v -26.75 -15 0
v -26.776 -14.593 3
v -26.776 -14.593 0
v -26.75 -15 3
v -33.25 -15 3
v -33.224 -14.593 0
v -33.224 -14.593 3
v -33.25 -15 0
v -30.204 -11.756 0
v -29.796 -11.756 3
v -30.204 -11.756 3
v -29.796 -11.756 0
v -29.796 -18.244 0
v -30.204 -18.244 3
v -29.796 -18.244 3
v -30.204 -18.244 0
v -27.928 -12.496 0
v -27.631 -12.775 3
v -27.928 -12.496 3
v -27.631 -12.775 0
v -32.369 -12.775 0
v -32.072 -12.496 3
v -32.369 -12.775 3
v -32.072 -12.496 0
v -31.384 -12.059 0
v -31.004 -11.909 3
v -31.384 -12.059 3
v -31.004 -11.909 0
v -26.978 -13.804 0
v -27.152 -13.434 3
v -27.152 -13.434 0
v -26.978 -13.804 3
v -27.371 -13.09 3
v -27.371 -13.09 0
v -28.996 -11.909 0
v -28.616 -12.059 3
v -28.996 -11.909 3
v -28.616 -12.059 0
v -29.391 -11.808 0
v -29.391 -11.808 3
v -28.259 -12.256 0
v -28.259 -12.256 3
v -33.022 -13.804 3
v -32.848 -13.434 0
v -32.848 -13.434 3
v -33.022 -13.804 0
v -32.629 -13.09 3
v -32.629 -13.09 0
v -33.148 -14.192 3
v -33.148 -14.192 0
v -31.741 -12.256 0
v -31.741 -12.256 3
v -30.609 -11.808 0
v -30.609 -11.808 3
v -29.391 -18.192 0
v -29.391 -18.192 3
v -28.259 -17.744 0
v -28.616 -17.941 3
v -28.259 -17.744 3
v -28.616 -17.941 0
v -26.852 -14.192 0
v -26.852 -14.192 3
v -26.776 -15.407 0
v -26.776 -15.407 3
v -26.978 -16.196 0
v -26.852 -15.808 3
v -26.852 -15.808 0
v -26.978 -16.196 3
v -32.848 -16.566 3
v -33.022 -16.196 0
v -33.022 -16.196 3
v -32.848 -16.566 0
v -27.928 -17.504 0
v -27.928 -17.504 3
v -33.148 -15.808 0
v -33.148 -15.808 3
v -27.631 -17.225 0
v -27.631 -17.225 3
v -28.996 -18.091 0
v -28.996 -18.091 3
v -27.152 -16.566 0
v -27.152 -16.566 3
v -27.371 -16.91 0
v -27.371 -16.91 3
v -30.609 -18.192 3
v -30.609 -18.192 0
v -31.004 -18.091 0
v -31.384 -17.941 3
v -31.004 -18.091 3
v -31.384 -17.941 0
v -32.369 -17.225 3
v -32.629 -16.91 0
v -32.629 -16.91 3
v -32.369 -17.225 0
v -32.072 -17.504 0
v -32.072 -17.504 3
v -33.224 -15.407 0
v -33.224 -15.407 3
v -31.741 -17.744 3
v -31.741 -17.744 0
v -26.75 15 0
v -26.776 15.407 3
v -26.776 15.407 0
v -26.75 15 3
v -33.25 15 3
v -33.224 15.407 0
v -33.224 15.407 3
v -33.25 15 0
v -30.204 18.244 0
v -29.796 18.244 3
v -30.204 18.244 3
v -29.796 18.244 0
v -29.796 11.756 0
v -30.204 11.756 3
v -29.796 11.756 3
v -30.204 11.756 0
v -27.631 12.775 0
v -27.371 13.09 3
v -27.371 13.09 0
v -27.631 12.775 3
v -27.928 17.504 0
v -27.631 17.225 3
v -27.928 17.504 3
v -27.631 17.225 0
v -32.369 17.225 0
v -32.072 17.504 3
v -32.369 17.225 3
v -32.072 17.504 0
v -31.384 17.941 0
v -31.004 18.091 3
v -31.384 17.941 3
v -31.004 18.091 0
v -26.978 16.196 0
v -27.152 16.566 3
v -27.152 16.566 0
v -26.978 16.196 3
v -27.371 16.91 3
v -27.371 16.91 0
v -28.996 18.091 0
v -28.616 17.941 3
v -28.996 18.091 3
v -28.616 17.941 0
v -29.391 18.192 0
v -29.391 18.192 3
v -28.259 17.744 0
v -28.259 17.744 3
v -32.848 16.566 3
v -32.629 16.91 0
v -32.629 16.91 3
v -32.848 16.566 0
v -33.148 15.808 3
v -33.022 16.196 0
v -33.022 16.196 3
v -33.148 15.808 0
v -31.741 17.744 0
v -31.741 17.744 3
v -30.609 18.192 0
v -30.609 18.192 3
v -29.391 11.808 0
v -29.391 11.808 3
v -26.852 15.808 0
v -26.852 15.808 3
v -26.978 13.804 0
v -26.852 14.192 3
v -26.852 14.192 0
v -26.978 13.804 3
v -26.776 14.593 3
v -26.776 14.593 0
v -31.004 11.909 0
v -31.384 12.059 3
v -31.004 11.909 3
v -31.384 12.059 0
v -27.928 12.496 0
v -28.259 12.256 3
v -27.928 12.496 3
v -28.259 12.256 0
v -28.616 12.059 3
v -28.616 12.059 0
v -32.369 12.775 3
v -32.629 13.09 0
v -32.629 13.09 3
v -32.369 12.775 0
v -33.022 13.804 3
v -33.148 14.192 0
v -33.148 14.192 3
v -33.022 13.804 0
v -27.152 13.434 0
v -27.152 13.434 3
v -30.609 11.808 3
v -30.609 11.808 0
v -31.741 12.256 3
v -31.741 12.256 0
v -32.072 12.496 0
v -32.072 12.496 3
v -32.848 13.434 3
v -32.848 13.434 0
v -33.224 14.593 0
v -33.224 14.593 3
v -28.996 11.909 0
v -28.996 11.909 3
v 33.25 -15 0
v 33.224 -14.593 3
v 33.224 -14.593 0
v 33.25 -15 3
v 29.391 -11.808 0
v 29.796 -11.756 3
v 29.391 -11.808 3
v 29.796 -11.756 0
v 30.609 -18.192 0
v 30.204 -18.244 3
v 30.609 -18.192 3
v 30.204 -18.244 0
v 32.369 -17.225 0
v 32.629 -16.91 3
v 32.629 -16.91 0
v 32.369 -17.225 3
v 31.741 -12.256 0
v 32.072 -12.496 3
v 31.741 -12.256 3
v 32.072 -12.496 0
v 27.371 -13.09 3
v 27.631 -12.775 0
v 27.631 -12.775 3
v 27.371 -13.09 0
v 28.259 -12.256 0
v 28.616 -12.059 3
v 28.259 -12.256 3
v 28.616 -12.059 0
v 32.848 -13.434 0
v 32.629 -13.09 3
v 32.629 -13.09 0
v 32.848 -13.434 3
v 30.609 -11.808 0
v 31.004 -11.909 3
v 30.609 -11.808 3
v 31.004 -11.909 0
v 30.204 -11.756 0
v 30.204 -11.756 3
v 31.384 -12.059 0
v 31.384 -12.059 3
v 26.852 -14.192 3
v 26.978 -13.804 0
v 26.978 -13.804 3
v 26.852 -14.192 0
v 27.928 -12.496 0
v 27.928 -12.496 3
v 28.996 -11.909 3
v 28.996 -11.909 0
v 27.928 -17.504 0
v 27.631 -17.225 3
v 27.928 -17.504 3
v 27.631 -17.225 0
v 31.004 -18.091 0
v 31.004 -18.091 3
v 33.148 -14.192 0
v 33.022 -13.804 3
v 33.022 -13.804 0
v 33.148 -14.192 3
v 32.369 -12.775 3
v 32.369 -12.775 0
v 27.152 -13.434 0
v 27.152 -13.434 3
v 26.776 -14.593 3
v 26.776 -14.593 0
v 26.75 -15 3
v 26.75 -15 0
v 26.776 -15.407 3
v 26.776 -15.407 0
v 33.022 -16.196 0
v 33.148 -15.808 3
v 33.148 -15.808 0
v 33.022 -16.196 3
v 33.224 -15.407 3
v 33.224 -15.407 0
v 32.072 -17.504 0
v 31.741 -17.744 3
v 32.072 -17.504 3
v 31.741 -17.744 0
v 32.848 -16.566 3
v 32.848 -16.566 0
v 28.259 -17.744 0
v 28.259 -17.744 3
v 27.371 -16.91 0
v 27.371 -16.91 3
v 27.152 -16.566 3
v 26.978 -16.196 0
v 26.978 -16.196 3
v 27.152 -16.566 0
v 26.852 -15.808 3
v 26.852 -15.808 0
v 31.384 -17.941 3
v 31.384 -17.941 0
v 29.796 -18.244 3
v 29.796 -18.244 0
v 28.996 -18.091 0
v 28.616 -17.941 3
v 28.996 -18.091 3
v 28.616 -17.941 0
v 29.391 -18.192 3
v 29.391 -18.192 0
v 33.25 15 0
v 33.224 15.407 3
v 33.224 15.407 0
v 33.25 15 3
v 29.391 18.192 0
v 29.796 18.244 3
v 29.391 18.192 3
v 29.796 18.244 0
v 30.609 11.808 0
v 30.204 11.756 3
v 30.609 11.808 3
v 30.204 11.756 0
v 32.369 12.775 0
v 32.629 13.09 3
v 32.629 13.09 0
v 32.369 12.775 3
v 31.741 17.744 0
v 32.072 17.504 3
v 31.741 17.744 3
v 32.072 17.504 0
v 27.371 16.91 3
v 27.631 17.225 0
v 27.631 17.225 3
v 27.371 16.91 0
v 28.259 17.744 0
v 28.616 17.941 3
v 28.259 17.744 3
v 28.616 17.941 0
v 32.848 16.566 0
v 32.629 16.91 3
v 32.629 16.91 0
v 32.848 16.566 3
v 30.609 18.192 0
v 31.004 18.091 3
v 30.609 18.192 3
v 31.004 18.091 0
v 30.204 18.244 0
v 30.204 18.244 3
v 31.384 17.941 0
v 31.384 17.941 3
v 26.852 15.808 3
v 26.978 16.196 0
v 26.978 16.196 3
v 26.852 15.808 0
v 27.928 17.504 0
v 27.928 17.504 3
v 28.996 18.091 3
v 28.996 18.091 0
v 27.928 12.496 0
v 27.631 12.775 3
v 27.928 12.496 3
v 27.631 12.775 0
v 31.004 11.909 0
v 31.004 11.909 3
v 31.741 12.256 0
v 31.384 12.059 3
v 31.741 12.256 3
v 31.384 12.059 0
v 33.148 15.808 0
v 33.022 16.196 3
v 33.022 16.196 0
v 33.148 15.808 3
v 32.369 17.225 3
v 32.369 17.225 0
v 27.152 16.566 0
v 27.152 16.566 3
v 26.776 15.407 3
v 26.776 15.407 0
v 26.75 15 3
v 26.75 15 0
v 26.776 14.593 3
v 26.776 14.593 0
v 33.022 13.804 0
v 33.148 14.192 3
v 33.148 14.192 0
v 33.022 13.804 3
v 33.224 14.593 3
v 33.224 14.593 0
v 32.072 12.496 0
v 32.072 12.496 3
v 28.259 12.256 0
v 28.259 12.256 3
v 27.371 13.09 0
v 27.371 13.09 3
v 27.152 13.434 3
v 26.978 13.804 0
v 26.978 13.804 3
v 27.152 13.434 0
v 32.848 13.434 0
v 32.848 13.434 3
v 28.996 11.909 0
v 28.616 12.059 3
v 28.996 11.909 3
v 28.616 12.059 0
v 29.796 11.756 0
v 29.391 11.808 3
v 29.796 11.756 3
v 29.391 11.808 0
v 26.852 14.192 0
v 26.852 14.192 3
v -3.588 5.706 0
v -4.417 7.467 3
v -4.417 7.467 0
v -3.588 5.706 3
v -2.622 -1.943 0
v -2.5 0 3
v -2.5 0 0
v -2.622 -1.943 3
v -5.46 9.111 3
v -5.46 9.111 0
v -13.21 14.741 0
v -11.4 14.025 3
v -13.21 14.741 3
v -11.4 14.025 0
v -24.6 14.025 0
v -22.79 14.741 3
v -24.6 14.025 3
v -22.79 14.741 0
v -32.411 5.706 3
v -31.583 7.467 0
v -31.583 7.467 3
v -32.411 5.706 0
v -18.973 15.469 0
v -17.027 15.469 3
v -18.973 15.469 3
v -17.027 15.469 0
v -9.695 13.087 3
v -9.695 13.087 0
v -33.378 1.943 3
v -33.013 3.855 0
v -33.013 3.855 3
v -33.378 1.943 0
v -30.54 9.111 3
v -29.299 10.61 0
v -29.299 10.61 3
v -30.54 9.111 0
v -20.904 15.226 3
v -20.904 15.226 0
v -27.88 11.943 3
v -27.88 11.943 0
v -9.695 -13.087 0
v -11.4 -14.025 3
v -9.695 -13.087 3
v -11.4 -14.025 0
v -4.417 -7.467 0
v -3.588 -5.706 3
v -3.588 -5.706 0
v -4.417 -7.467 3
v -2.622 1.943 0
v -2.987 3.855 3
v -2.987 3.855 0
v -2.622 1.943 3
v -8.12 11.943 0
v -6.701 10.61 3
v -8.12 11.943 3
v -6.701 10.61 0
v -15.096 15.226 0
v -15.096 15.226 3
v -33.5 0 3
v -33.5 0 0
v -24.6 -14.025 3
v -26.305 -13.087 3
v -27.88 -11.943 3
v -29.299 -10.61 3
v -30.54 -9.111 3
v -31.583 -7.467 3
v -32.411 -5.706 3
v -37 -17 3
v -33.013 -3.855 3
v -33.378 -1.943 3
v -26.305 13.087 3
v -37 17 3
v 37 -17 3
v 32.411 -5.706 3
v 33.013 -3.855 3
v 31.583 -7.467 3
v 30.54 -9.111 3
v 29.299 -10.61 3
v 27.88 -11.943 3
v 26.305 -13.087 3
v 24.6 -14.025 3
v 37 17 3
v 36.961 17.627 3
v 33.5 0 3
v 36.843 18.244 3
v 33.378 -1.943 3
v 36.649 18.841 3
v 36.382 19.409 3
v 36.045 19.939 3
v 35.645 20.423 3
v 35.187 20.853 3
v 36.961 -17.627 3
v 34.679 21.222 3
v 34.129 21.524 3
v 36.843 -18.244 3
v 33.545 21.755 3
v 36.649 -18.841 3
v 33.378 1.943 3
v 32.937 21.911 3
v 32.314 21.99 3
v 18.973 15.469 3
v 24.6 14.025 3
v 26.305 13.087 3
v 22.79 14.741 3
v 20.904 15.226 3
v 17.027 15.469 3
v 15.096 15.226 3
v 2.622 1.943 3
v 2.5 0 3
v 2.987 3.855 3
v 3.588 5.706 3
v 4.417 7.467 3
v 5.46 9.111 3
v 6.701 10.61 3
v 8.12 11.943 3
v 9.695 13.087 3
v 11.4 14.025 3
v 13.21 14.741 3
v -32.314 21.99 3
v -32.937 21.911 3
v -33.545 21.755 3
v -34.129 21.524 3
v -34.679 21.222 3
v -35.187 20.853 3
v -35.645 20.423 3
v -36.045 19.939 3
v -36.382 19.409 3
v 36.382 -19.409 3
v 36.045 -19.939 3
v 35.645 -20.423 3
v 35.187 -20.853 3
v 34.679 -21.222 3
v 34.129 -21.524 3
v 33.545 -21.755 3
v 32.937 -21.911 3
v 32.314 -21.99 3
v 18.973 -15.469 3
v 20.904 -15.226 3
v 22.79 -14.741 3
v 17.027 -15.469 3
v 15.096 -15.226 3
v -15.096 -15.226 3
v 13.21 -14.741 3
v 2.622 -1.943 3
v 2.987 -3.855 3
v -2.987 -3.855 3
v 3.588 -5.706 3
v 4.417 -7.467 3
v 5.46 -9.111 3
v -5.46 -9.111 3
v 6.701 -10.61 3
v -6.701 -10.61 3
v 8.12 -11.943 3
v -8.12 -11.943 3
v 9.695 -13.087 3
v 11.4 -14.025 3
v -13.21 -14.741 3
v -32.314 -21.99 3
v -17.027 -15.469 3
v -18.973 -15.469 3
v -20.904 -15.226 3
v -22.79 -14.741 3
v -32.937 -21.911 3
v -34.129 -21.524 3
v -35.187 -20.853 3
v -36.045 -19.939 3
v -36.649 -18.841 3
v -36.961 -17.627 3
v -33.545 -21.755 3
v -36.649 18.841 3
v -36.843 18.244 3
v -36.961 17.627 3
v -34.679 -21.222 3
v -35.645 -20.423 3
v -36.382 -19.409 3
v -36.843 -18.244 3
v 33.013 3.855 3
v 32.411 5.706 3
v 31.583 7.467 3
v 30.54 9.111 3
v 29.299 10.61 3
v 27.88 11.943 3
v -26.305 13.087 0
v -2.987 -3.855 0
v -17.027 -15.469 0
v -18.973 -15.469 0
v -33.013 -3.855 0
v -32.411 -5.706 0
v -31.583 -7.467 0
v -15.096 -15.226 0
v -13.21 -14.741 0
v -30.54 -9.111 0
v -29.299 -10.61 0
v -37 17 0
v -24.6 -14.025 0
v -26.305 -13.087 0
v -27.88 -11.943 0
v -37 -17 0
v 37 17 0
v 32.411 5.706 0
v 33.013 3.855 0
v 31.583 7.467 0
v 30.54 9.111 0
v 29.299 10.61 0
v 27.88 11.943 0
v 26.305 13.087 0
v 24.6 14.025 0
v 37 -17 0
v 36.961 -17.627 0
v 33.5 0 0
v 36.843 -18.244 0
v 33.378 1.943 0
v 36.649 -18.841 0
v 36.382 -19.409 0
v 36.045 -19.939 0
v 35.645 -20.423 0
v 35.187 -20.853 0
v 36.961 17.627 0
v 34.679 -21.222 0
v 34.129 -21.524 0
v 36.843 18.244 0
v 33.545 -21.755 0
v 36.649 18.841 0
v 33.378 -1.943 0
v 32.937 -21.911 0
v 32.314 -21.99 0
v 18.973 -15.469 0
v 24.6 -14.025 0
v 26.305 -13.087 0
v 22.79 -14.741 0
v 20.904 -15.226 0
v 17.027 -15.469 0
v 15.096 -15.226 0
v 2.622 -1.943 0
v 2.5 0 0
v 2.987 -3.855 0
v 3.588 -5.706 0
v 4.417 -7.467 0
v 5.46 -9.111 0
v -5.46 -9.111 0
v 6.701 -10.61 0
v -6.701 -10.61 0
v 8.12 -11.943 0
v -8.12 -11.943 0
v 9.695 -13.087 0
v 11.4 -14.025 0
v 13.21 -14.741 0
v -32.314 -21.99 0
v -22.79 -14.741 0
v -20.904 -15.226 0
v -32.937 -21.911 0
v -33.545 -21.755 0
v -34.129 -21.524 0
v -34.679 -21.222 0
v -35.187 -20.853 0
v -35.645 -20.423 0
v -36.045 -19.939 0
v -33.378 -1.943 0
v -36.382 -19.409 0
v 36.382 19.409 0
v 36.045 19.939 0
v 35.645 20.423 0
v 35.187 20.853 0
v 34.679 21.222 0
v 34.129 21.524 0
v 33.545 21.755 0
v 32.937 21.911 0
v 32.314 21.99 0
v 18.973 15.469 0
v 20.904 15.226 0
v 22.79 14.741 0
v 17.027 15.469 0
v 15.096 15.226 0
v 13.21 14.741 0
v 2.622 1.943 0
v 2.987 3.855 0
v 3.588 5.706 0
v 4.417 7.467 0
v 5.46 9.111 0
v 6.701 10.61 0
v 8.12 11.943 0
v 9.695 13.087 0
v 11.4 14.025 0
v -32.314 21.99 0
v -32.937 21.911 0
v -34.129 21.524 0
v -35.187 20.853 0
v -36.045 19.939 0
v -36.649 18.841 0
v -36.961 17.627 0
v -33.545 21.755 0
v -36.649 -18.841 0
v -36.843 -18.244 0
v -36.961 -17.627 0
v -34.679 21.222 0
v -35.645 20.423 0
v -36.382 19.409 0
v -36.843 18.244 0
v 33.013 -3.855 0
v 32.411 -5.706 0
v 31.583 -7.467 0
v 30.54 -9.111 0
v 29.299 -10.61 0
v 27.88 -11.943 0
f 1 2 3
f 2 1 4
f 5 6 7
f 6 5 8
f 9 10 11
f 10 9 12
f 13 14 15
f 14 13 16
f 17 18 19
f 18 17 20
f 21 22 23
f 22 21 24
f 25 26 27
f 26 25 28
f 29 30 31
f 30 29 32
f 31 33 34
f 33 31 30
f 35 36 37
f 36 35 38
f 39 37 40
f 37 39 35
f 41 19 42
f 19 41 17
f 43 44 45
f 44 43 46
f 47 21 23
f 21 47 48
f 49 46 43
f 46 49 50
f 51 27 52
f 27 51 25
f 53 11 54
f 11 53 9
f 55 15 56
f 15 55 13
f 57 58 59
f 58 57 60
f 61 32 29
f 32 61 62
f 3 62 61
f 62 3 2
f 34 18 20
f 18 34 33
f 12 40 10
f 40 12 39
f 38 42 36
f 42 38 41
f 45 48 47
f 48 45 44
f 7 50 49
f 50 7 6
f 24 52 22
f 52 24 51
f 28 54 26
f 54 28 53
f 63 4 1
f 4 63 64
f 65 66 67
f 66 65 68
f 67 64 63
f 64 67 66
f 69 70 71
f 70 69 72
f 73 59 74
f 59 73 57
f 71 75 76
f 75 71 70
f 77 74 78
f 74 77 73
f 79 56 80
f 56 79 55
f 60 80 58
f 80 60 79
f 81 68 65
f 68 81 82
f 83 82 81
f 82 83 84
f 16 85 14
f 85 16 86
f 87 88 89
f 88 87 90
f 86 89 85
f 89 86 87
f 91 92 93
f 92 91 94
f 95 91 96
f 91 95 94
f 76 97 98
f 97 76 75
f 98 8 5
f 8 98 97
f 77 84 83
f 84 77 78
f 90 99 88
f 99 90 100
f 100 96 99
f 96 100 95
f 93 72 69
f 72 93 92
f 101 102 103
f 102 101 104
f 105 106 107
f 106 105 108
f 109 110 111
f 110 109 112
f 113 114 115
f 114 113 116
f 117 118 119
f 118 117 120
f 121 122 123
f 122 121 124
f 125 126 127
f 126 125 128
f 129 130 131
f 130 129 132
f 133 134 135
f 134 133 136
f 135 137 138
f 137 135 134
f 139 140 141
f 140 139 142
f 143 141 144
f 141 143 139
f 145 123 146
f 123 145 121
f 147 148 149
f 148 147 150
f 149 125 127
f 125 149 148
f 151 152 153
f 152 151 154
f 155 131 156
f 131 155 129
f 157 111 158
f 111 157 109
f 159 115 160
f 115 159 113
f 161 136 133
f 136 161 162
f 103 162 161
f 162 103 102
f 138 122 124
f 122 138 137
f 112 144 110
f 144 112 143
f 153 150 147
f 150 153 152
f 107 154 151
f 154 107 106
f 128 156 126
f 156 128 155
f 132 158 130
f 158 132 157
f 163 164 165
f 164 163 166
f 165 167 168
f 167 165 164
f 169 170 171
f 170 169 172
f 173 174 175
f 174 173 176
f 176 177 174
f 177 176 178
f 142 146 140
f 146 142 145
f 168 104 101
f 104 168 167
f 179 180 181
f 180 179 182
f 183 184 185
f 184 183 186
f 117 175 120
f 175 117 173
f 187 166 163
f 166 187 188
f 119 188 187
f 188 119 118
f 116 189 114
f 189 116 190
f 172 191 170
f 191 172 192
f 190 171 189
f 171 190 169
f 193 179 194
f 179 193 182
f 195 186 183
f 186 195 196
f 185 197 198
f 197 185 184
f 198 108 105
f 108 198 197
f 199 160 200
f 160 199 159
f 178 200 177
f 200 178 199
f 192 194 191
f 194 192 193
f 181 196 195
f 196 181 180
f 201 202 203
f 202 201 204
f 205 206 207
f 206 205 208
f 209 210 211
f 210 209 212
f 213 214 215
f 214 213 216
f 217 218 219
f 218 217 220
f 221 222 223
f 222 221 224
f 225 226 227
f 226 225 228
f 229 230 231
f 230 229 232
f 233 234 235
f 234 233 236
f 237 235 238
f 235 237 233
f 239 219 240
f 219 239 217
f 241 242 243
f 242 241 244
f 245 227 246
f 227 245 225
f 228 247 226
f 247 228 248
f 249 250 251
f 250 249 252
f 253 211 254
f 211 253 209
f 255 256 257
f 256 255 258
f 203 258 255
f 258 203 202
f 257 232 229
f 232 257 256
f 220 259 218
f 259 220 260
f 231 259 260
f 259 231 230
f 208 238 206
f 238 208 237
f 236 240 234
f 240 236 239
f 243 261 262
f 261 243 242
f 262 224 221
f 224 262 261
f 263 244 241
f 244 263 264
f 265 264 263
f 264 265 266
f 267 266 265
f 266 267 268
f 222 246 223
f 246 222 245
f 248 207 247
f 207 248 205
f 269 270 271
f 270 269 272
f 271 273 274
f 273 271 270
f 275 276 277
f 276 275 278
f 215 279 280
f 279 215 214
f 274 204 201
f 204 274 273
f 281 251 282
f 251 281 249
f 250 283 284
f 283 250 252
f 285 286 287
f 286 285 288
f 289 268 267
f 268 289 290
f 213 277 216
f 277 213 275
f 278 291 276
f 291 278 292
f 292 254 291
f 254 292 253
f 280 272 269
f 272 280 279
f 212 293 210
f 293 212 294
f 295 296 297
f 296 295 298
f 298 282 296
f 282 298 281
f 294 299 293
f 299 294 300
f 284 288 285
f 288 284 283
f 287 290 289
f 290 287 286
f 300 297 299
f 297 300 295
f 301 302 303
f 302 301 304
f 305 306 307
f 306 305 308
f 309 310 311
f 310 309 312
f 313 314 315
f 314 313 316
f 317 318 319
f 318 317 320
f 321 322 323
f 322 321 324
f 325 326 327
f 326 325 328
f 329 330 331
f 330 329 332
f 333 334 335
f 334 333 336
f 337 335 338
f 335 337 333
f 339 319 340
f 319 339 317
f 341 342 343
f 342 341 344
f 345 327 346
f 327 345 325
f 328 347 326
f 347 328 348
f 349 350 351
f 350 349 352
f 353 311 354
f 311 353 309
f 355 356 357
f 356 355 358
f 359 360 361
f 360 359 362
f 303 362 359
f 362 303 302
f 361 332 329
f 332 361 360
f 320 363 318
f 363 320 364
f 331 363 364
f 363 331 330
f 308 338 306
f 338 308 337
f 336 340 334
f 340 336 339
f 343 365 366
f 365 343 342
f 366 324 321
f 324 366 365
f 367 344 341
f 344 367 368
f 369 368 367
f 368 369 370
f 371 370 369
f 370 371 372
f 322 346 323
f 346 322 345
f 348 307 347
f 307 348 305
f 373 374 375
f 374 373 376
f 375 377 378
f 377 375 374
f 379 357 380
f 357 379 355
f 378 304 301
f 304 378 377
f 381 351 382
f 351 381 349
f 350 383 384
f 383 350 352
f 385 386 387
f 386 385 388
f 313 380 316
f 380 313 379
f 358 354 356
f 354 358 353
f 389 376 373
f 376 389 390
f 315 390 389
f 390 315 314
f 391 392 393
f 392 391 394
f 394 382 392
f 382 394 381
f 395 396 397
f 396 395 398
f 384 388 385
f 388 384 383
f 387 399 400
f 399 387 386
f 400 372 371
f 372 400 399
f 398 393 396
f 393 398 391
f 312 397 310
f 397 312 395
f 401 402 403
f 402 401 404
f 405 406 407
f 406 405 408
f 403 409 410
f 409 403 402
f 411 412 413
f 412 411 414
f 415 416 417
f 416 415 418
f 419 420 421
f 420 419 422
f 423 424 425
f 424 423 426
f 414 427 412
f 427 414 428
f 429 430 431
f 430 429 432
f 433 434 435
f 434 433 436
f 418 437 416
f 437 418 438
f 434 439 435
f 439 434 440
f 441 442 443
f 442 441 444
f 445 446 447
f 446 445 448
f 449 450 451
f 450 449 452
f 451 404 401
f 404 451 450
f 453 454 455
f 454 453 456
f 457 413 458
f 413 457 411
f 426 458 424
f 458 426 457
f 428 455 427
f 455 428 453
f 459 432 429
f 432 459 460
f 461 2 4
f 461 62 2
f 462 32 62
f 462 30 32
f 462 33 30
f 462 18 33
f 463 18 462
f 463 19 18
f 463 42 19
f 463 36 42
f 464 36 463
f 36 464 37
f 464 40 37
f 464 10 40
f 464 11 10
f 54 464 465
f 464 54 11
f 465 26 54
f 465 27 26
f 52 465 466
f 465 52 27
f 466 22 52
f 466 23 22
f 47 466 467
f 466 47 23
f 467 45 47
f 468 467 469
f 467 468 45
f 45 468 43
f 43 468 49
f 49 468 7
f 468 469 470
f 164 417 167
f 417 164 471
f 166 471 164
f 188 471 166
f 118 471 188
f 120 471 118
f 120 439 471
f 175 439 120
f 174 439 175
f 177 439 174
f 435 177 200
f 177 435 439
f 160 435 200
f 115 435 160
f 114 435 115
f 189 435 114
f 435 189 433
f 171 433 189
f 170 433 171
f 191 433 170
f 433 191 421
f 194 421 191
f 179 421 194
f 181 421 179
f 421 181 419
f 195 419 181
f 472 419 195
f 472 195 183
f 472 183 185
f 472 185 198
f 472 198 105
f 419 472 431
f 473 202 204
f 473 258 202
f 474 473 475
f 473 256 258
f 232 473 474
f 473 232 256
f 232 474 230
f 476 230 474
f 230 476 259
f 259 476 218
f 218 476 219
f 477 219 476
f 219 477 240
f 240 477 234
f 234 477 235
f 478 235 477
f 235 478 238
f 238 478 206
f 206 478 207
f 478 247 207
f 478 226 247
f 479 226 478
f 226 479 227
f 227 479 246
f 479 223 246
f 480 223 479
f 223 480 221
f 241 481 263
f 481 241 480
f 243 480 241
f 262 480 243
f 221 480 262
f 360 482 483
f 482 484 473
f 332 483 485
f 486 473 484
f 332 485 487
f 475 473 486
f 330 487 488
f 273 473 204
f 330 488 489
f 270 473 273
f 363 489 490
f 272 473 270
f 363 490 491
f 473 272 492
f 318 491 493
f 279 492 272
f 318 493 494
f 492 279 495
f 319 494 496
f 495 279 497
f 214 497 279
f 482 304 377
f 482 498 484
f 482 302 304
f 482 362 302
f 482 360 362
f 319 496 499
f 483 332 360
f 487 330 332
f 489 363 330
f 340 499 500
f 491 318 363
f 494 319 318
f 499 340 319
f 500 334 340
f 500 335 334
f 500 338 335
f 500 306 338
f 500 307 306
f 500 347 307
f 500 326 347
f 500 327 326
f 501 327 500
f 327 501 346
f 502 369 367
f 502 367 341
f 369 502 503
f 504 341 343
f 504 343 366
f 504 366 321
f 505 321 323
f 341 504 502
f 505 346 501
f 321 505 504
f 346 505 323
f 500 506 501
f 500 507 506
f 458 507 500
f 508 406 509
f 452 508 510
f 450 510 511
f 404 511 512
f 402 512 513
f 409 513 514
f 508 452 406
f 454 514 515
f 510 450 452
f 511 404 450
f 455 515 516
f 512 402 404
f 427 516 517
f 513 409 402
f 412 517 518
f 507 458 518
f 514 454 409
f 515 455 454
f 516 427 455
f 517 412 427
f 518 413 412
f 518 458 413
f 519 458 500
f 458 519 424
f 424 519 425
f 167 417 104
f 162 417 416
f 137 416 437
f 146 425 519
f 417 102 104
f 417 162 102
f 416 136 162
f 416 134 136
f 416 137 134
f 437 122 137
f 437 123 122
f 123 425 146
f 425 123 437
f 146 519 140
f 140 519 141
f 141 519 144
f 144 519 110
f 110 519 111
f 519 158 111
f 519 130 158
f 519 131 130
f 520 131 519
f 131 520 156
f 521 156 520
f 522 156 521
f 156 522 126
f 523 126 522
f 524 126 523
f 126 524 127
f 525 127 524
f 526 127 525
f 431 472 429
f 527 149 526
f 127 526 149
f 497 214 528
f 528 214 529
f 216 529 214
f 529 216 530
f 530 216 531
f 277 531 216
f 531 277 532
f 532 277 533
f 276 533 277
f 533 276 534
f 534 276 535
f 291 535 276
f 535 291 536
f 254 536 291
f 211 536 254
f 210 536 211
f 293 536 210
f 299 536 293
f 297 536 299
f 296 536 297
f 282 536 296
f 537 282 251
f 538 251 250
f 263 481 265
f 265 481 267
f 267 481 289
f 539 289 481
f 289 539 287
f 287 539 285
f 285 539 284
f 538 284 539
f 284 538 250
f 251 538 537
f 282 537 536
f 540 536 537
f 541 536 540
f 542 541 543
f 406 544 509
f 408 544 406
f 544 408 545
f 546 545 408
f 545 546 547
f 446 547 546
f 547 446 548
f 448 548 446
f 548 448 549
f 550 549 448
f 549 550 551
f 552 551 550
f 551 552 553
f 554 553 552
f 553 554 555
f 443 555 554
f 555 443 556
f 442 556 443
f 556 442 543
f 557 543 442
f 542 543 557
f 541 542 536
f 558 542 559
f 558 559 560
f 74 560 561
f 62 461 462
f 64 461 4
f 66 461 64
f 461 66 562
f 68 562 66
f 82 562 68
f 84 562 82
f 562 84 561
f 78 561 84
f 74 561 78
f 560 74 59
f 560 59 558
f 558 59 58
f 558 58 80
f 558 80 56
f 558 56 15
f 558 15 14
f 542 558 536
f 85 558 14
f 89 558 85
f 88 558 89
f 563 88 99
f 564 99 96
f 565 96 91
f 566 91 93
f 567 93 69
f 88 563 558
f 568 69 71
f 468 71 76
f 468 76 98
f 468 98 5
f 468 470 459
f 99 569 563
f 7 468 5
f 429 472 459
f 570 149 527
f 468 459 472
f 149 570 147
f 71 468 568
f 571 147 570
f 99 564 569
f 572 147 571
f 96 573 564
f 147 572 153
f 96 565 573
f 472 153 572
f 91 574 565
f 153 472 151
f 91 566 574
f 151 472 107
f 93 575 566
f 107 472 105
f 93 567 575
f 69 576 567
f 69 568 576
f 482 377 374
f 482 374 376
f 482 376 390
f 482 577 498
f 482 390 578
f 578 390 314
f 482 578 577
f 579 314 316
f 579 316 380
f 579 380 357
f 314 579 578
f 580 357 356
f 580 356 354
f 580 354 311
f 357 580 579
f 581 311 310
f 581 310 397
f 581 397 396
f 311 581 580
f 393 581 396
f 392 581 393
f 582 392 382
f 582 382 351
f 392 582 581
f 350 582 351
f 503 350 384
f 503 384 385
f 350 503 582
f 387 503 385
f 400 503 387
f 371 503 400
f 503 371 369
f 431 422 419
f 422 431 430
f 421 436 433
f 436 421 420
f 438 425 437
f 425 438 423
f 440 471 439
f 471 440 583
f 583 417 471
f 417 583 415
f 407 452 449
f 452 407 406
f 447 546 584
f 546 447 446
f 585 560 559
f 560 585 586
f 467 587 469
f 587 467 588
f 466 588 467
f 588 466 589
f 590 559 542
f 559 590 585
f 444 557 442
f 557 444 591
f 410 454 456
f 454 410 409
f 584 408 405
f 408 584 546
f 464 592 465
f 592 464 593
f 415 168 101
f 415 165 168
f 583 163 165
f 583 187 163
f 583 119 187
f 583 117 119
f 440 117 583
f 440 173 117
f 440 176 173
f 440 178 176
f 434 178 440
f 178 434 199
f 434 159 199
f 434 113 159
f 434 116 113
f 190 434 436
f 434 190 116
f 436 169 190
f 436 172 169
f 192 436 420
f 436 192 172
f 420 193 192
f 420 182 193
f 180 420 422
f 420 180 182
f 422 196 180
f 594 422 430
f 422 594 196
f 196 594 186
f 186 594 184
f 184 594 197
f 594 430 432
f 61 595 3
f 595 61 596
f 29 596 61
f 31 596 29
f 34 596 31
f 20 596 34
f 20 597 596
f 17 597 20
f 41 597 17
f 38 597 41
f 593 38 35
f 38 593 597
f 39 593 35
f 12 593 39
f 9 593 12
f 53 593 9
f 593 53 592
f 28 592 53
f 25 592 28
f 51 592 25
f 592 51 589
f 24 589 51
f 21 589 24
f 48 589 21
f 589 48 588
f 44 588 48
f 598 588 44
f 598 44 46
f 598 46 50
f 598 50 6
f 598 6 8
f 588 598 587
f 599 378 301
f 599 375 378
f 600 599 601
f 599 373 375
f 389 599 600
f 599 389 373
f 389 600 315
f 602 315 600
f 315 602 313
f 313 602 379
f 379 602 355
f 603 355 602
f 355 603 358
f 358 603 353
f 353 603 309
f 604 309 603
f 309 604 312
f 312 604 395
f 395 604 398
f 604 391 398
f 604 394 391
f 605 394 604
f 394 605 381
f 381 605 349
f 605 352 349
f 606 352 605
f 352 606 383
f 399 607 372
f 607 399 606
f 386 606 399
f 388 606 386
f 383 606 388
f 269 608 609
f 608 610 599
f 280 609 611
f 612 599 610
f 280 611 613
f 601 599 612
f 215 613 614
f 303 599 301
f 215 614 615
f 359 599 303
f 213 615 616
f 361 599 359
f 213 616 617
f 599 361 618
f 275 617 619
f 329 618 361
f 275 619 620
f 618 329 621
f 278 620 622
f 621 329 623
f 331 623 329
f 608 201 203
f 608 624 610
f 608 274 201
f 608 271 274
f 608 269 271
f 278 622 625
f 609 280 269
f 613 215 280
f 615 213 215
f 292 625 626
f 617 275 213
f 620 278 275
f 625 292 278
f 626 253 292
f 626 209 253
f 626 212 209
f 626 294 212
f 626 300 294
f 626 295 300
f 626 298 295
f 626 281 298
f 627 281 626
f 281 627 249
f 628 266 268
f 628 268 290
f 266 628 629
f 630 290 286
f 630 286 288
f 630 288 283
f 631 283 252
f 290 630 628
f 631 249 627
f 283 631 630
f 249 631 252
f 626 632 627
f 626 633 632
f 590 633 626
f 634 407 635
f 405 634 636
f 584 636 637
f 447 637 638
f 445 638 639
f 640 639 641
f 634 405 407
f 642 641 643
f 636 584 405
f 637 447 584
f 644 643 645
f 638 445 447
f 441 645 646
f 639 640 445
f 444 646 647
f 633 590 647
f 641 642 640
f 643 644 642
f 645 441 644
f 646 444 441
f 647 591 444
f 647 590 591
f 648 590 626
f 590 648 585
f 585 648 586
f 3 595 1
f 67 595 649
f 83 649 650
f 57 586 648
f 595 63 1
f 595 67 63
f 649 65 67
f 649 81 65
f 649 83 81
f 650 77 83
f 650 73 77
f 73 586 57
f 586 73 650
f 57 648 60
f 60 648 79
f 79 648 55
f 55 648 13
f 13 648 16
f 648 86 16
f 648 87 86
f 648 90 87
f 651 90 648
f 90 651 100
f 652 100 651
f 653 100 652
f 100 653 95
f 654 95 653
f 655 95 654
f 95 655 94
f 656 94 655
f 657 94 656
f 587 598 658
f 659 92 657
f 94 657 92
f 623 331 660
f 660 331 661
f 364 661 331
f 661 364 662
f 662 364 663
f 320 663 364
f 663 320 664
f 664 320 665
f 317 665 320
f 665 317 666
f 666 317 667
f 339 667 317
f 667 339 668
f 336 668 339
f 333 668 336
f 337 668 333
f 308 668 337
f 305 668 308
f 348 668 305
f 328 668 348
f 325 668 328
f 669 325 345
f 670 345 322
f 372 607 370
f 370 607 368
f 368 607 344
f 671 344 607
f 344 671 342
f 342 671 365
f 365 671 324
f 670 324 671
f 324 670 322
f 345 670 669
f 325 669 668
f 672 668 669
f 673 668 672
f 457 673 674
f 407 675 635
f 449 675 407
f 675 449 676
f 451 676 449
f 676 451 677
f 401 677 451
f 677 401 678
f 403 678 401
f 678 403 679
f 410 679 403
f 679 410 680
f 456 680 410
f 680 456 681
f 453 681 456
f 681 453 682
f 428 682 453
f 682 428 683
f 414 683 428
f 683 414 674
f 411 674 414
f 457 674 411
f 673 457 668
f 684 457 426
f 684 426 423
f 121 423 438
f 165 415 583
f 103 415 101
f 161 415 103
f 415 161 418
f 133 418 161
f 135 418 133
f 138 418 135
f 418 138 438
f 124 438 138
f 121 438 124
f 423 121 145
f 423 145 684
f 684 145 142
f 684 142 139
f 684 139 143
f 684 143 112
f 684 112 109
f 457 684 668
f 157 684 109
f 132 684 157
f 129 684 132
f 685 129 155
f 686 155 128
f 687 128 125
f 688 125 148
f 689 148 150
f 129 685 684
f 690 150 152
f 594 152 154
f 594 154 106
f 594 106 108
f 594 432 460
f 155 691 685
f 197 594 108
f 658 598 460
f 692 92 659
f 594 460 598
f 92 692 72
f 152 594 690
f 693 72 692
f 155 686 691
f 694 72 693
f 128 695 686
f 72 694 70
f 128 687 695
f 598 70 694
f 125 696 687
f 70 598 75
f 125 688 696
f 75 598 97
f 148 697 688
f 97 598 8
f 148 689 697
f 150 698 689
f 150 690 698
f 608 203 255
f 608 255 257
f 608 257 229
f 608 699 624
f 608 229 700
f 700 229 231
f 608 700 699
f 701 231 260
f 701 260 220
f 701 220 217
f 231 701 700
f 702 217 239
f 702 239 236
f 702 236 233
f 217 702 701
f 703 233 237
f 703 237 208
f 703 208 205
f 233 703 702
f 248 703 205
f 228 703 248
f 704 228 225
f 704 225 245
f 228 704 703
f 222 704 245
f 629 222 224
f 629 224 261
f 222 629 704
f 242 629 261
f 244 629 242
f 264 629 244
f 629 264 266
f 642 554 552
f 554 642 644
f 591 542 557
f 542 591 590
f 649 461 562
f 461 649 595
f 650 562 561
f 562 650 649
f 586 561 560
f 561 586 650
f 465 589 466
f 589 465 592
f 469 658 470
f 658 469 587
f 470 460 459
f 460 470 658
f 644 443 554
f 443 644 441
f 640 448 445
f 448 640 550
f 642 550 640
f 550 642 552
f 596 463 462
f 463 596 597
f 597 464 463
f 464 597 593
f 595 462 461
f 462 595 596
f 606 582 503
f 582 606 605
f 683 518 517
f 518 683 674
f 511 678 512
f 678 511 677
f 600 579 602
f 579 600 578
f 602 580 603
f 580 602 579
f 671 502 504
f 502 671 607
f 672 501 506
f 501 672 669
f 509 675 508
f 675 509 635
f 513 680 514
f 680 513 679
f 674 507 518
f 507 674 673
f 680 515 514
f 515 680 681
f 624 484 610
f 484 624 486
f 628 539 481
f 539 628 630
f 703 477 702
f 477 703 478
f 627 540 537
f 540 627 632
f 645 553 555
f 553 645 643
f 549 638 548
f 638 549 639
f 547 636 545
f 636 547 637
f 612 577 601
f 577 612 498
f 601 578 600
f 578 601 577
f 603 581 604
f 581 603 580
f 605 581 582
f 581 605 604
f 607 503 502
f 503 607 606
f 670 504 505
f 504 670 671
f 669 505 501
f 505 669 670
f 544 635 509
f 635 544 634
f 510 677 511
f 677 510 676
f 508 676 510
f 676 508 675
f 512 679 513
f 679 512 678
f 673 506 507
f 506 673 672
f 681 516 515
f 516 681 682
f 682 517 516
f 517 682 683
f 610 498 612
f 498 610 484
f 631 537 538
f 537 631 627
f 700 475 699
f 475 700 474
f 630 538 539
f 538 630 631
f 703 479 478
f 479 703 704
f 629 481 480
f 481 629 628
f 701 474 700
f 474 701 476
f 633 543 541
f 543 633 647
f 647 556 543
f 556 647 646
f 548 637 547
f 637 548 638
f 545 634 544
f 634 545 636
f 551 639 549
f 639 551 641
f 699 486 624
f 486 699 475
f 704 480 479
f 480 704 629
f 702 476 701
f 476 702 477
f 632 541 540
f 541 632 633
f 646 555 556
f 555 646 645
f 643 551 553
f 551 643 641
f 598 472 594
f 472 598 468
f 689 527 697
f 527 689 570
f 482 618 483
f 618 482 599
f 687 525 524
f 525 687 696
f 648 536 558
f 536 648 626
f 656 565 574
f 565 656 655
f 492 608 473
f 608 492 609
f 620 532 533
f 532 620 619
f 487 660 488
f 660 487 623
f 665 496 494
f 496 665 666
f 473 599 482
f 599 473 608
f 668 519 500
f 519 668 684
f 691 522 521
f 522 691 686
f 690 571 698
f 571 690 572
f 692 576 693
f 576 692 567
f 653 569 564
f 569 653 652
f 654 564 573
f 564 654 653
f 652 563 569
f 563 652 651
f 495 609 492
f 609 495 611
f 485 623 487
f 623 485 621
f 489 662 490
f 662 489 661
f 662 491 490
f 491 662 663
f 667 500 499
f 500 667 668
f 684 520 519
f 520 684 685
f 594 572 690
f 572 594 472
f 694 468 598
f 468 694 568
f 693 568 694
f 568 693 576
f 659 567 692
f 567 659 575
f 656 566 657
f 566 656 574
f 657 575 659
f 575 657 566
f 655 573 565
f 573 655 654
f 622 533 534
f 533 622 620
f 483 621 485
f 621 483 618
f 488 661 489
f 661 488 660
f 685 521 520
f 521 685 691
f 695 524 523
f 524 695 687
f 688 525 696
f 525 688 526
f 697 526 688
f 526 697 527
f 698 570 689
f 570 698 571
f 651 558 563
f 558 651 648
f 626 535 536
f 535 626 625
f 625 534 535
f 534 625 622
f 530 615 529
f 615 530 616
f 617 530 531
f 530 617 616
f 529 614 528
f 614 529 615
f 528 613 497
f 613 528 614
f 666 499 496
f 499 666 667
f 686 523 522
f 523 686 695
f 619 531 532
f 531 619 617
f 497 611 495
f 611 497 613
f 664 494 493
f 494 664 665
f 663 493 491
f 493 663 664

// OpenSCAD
$fn = 50;


difference() {
	union() {
		hull() {
			translate(v = [-32.0000000000, 17.0000000000, 0]) {
				cylinder(h = 3, r = 5);
			}
			translate(v = [32.0000000000, 17.0000000000, 0]) {
				cylinder(h = 3, r = 5);
			}
			translate(v = [-32.0000000000, -17.0000000000, 0]) {
				cylinder(h = 3, r = 5);
			}
			translate(v = [32.0000000000, -17.0000000000, 0]) {
				cylinder(h = 3, r = 5);
			}
		}
	}
	union() {
		#translate(v = [-30.0000000000, -15.0000000000, -100.0000000000]) {
			cylinder(h = 200, r = 3.2500000000);
		}
		#translate(v = [-30.0000000000, 15.0000000000, -100.0000000000]) {
			cylinder(h = 200, r = 3.2500000000);
		}
		#translate(v = [30.0000000000, -15.0000000000, -100.0000000000]) {
			cylinder(h = 200, r = 3.2500000000);
		}
		#translate(v = [30.0000000000, 15.0000000000, -100.0000000000]) {
			cylinder(h = 200, r = 3.2500000000);
		}
		#translate(v = [-18.0000000000, 0, 0]) {
			cylinder(h = 3, r = 15.5000000000);
		}
		#translate(v = [18.0000000000, 0, 0]) {
			cylinder(h = 3, r = 15.5000000000);
		}
	}
}
